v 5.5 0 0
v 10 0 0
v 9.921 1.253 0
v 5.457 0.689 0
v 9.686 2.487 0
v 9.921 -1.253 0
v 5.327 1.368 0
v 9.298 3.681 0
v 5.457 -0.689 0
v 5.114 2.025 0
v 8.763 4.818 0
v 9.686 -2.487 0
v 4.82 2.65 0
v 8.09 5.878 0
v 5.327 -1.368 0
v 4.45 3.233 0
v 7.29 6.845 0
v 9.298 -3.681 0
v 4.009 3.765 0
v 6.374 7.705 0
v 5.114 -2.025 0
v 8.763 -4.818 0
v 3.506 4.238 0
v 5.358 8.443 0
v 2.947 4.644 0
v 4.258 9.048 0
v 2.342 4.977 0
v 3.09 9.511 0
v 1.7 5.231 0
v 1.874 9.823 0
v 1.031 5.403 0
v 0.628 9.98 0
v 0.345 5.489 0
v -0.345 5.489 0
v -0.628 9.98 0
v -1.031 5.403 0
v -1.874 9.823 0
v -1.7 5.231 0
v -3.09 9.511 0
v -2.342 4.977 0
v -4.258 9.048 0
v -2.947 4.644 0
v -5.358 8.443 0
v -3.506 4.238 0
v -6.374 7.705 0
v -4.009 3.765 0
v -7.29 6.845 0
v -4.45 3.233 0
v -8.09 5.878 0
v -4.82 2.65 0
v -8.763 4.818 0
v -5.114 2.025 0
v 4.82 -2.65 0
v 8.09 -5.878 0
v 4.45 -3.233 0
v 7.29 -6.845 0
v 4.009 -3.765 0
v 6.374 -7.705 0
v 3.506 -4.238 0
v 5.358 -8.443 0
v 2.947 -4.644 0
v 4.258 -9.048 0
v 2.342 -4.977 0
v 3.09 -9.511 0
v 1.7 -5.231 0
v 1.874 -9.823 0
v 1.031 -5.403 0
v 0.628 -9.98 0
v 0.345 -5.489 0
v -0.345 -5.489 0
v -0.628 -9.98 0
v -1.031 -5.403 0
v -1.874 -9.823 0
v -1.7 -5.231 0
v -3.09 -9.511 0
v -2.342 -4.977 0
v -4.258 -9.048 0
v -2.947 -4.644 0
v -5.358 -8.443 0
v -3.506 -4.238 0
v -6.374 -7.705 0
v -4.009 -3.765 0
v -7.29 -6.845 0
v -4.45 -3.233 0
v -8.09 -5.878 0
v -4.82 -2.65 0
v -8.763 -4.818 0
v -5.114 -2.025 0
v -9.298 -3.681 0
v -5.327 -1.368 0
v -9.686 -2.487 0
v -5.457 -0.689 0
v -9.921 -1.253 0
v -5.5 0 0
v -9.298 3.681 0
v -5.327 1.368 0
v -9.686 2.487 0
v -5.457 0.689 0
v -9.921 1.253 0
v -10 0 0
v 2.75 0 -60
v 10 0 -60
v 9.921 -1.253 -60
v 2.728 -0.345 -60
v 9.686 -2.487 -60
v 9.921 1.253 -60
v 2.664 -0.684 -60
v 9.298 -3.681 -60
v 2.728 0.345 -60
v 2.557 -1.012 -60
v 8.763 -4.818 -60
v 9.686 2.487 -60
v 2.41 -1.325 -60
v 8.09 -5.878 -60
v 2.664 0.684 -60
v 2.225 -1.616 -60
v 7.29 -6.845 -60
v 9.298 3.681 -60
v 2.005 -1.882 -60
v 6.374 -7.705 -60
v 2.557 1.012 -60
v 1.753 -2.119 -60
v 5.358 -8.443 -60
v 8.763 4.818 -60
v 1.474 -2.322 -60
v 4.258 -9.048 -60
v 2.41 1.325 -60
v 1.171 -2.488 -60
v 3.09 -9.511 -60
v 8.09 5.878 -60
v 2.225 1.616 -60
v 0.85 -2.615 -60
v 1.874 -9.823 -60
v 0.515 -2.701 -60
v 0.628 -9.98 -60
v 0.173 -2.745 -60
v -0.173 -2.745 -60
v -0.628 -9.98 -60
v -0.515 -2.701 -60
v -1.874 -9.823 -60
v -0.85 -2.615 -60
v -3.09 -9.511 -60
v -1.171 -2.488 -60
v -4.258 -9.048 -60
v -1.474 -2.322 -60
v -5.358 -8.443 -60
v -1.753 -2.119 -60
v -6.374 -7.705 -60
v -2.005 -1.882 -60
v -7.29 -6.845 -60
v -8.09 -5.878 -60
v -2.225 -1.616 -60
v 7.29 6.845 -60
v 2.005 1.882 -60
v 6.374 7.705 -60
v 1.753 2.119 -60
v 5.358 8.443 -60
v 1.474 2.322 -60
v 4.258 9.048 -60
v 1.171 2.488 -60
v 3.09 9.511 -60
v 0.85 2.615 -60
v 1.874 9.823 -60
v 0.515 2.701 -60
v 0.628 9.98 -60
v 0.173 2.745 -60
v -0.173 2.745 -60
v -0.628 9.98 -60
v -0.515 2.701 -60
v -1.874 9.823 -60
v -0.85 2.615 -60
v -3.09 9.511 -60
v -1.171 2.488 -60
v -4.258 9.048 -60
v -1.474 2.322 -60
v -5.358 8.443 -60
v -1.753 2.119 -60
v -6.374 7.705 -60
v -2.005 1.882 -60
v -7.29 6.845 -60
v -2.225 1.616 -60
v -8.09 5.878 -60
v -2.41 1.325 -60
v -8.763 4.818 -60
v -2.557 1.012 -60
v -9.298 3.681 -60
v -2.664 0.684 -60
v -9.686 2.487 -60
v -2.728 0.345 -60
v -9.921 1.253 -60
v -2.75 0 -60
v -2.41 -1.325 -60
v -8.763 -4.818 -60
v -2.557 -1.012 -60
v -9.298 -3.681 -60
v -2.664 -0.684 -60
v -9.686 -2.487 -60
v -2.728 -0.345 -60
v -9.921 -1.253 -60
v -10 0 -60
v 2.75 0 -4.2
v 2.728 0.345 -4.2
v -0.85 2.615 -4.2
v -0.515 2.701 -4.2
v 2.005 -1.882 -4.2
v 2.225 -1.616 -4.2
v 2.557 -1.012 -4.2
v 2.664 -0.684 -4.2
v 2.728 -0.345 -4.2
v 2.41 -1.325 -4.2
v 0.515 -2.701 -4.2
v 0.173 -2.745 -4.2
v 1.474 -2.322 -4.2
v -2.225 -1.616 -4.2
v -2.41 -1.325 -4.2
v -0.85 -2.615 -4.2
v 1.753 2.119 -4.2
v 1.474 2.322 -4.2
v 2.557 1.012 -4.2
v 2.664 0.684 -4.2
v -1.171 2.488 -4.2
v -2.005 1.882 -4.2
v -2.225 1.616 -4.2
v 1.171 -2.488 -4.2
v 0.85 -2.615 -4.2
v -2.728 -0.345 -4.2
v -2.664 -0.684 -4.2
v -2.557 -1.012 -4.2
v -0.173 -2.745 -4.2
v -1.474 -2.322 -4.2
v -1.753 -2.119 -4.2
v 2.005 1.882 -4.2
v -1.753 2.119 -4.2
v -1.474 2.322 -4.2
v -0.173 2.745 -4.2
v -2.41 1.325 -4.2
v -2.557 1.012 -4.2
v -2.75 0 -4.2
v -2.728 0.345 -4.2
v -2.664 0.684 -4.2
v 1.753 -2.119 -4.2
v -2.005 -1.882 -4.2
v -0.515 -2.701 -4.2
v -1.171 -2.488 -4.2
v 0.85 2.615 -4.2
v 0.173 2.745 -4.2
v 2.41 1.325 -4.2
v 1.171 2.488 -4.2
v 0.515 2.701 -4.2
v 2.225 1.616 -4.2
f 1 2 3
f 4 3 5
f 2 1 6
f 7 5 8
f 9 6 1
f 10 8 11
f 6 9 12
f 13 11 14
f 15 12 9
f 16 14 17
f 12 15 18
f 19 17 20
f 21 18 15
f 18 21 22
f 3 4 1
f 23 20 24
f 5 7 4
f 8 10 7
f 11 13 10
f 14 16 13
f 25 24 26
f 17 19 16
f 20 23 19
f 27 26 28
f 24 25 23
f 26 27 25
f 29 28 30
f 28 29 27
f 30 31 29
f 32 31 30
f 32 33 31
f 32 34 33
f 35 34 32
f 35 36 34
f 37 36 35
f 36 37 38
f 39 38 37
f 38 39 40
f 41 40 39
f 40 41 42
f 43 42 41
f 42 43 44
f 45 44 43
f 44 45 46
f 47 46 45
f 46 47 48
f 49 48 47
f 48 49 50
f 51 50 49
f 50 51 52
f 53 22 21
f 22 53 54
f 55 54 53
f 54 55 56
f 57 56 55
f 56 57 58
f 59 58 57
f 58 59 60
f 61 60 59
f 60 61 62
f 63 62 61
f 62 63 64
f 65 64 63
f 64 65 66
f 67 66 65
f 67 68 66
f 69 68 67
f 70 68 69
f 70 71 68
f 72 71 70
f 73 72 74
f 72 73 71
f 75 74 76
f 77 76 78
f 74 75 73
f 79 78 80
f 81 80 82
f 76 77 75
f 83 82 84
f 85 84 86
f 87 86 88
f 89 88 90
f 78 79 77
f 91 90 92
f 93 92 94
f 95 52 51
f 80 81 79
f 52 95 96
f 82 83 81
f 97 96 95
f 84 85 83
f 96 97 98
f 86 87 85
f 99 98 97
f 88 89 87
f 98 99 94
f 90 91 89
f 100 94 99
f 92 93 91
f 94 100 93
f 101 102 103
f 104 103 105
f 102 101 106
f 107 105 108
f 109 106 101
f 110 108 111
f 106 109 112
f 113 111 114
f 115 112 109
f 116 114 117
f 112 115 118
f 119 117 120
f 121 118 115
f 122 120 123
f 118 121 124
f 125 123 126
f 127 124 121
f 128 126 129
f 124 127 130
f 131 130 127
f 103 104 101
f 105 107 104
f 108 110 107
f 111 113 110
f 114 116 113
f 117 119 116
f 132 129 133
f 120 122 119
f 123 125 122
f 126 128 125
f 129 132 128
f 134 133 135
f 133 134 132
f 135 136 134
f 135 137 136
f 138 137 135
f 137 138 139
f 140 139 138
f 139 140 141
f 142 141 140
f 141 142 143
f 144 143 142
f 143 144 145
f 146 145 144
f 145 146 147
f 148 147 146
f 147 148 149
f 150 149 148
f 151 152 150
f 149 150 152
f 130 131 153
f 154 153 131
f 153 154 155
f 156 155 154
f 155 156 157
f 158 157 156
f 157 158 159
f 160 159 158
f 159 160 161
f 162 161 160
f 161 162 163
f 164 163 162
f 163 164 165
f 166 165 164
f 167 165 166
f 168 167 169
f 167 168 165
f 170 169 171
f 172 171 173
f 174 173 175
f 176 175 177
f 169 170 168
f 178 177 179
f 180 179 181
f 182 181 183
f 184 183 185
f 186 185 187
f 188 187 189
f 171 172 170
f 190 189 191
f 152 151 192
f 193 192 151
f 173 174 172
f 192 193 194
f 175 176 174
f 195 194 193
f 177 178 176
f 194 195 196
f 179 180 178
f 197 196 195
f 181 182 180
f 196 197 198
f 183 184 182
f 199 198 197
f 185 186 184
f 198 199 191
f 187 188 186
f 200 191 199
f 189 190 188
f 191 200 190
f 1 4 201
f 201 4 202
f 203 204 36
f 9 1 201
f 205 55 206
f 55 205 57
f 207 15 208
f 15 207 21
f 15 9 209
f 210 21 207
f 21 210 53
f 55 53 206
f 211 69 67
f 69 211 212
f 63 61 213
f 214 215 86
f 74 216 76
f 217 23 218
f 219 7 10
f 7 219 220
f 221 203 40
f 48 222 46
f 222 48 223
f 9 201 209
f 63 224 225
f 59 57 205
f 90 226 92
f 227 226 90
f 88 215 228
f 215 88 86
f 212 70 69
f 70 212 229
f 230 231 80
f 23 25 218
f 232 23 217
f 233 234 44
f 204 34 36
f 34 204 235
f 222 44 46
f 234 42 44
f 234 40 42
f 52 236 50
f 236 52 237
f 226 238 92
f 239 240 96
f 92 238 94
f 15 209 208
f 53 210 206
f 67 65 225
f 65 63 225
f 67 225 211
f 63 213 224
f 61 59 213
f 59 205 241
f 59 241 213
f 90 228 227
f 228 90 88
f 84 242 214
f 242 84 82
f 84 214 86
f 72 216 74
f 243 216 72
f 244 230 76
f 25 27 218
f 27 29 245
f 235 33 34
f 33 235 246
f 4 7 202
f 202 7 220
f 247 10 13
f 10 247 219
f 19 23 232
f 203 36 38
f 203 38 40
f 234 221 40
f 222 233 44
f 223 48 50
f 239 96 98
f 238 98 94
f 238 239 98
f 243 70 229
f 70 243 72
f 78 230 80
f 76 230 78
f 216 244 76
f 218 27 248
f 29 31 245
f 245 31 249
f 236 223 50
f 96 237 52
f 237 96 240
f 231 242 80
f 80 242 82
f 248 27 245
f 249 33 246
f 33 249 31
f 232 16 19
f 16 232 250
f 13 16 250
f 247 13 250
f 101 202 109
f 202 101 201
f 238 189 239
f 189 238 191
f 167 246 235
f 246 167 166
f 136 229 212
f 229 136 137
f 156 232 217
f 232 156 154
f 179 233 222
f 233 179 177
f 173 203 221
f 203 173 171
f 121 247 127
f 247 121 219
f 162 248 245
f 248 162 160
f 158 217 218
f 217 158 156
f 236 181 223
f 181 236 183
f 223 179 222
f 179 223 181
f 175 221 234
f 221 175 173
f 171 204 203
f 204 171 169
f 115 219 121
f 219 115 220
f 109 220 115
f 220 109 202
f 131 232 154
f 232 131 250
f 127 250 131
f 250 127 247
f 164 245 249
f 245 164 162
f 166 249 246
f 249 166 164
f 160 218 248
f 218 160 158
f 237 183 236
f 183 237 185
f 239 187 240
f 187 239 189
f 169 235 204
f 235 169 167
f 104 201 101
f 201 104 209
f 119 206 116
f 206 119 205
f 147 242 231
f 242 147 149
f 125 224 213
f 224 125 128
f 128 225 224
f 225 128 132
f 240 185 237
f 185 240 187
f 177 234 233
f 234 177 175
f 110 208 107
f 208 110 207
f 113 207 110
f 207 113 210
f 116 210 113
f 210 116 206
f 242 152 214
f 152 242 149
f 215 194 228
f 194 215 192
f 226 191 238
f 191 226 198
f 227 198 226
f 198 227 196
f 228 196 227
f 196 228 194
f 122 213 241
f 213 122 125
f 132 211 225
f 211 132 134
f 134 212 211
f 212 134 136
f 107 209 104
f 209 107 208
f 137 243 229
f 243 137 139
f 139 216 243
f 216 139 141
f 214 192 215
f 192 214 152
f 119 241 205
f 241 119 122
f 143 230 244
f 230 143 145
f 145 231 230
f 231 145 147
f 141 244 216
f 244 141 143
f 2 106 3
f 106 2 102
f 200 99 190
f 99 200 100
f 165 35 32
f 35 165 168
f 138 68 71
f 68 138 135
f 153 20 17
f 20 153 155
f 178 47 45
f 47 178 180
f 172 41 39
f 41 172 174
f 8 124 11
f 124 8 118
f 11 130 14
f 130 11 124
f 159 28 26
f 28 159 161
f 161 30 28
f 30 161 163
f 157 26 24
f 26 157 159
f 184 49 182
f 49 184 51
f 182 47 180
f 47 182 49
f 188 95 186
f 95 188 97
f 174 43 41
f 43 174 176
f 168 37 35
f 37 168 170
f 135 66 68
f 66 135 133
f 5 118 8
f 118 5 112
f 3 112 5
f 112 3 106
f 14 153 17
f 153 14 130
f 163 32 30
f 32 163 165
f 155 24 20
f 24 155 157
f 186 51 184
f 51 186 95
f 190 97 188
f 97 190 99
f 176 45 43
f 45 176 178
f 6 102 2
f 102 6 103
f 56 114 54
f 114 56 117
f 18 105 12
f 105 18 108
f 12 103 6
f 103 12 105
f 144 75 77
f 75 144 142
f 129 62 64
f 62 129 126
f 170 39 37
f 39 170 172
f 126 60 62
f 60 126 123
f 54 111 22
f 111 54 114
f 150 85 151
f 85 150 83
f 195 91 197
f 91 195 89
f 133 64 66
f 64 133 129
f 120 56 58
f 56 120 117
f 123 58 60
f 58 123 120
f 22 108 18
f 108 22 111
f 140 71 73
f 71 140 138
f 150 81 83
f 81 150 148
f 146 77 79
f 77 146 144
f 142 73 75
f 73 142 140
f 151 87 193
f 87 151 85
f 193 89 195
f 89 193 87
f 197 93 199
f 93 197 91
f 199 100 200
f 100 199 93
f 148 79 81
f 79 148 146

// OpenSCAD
$fn = 50;


difference() {
	union() {
		translate(v = [0, 0, -60.0000000000]) {
			cylinder(h = 60, r = 10.0000000000);
		}
	}
	union() {
		translate(v = [0, 0, 0]) {
			rotate(a = [0, 0, 0]) {
				difference() {
					union() {
						#translate(v = [0, 0, -60.0000000000]) {
							cylinder(h = 60, r = 2.2500000000);
						}
						#translate(v = [0, 0, -4.2000000000]) {
							cylinder(h = 4.2000000000, r = 10.0000000000, r1 = 2.7500000000, r2 = 5.5000000000);
						}
						#translate(v = [0, 0, -60.0000000000]) {
							cylinder(h = 60, r = 2.7500000000);
						}
						#translate(v = [0, 0, -60.0000000000]) {
							cylinder(h = 60, r = 2.2500000000);
						}
					}
					union();
				}
			}
		}
	}
}
